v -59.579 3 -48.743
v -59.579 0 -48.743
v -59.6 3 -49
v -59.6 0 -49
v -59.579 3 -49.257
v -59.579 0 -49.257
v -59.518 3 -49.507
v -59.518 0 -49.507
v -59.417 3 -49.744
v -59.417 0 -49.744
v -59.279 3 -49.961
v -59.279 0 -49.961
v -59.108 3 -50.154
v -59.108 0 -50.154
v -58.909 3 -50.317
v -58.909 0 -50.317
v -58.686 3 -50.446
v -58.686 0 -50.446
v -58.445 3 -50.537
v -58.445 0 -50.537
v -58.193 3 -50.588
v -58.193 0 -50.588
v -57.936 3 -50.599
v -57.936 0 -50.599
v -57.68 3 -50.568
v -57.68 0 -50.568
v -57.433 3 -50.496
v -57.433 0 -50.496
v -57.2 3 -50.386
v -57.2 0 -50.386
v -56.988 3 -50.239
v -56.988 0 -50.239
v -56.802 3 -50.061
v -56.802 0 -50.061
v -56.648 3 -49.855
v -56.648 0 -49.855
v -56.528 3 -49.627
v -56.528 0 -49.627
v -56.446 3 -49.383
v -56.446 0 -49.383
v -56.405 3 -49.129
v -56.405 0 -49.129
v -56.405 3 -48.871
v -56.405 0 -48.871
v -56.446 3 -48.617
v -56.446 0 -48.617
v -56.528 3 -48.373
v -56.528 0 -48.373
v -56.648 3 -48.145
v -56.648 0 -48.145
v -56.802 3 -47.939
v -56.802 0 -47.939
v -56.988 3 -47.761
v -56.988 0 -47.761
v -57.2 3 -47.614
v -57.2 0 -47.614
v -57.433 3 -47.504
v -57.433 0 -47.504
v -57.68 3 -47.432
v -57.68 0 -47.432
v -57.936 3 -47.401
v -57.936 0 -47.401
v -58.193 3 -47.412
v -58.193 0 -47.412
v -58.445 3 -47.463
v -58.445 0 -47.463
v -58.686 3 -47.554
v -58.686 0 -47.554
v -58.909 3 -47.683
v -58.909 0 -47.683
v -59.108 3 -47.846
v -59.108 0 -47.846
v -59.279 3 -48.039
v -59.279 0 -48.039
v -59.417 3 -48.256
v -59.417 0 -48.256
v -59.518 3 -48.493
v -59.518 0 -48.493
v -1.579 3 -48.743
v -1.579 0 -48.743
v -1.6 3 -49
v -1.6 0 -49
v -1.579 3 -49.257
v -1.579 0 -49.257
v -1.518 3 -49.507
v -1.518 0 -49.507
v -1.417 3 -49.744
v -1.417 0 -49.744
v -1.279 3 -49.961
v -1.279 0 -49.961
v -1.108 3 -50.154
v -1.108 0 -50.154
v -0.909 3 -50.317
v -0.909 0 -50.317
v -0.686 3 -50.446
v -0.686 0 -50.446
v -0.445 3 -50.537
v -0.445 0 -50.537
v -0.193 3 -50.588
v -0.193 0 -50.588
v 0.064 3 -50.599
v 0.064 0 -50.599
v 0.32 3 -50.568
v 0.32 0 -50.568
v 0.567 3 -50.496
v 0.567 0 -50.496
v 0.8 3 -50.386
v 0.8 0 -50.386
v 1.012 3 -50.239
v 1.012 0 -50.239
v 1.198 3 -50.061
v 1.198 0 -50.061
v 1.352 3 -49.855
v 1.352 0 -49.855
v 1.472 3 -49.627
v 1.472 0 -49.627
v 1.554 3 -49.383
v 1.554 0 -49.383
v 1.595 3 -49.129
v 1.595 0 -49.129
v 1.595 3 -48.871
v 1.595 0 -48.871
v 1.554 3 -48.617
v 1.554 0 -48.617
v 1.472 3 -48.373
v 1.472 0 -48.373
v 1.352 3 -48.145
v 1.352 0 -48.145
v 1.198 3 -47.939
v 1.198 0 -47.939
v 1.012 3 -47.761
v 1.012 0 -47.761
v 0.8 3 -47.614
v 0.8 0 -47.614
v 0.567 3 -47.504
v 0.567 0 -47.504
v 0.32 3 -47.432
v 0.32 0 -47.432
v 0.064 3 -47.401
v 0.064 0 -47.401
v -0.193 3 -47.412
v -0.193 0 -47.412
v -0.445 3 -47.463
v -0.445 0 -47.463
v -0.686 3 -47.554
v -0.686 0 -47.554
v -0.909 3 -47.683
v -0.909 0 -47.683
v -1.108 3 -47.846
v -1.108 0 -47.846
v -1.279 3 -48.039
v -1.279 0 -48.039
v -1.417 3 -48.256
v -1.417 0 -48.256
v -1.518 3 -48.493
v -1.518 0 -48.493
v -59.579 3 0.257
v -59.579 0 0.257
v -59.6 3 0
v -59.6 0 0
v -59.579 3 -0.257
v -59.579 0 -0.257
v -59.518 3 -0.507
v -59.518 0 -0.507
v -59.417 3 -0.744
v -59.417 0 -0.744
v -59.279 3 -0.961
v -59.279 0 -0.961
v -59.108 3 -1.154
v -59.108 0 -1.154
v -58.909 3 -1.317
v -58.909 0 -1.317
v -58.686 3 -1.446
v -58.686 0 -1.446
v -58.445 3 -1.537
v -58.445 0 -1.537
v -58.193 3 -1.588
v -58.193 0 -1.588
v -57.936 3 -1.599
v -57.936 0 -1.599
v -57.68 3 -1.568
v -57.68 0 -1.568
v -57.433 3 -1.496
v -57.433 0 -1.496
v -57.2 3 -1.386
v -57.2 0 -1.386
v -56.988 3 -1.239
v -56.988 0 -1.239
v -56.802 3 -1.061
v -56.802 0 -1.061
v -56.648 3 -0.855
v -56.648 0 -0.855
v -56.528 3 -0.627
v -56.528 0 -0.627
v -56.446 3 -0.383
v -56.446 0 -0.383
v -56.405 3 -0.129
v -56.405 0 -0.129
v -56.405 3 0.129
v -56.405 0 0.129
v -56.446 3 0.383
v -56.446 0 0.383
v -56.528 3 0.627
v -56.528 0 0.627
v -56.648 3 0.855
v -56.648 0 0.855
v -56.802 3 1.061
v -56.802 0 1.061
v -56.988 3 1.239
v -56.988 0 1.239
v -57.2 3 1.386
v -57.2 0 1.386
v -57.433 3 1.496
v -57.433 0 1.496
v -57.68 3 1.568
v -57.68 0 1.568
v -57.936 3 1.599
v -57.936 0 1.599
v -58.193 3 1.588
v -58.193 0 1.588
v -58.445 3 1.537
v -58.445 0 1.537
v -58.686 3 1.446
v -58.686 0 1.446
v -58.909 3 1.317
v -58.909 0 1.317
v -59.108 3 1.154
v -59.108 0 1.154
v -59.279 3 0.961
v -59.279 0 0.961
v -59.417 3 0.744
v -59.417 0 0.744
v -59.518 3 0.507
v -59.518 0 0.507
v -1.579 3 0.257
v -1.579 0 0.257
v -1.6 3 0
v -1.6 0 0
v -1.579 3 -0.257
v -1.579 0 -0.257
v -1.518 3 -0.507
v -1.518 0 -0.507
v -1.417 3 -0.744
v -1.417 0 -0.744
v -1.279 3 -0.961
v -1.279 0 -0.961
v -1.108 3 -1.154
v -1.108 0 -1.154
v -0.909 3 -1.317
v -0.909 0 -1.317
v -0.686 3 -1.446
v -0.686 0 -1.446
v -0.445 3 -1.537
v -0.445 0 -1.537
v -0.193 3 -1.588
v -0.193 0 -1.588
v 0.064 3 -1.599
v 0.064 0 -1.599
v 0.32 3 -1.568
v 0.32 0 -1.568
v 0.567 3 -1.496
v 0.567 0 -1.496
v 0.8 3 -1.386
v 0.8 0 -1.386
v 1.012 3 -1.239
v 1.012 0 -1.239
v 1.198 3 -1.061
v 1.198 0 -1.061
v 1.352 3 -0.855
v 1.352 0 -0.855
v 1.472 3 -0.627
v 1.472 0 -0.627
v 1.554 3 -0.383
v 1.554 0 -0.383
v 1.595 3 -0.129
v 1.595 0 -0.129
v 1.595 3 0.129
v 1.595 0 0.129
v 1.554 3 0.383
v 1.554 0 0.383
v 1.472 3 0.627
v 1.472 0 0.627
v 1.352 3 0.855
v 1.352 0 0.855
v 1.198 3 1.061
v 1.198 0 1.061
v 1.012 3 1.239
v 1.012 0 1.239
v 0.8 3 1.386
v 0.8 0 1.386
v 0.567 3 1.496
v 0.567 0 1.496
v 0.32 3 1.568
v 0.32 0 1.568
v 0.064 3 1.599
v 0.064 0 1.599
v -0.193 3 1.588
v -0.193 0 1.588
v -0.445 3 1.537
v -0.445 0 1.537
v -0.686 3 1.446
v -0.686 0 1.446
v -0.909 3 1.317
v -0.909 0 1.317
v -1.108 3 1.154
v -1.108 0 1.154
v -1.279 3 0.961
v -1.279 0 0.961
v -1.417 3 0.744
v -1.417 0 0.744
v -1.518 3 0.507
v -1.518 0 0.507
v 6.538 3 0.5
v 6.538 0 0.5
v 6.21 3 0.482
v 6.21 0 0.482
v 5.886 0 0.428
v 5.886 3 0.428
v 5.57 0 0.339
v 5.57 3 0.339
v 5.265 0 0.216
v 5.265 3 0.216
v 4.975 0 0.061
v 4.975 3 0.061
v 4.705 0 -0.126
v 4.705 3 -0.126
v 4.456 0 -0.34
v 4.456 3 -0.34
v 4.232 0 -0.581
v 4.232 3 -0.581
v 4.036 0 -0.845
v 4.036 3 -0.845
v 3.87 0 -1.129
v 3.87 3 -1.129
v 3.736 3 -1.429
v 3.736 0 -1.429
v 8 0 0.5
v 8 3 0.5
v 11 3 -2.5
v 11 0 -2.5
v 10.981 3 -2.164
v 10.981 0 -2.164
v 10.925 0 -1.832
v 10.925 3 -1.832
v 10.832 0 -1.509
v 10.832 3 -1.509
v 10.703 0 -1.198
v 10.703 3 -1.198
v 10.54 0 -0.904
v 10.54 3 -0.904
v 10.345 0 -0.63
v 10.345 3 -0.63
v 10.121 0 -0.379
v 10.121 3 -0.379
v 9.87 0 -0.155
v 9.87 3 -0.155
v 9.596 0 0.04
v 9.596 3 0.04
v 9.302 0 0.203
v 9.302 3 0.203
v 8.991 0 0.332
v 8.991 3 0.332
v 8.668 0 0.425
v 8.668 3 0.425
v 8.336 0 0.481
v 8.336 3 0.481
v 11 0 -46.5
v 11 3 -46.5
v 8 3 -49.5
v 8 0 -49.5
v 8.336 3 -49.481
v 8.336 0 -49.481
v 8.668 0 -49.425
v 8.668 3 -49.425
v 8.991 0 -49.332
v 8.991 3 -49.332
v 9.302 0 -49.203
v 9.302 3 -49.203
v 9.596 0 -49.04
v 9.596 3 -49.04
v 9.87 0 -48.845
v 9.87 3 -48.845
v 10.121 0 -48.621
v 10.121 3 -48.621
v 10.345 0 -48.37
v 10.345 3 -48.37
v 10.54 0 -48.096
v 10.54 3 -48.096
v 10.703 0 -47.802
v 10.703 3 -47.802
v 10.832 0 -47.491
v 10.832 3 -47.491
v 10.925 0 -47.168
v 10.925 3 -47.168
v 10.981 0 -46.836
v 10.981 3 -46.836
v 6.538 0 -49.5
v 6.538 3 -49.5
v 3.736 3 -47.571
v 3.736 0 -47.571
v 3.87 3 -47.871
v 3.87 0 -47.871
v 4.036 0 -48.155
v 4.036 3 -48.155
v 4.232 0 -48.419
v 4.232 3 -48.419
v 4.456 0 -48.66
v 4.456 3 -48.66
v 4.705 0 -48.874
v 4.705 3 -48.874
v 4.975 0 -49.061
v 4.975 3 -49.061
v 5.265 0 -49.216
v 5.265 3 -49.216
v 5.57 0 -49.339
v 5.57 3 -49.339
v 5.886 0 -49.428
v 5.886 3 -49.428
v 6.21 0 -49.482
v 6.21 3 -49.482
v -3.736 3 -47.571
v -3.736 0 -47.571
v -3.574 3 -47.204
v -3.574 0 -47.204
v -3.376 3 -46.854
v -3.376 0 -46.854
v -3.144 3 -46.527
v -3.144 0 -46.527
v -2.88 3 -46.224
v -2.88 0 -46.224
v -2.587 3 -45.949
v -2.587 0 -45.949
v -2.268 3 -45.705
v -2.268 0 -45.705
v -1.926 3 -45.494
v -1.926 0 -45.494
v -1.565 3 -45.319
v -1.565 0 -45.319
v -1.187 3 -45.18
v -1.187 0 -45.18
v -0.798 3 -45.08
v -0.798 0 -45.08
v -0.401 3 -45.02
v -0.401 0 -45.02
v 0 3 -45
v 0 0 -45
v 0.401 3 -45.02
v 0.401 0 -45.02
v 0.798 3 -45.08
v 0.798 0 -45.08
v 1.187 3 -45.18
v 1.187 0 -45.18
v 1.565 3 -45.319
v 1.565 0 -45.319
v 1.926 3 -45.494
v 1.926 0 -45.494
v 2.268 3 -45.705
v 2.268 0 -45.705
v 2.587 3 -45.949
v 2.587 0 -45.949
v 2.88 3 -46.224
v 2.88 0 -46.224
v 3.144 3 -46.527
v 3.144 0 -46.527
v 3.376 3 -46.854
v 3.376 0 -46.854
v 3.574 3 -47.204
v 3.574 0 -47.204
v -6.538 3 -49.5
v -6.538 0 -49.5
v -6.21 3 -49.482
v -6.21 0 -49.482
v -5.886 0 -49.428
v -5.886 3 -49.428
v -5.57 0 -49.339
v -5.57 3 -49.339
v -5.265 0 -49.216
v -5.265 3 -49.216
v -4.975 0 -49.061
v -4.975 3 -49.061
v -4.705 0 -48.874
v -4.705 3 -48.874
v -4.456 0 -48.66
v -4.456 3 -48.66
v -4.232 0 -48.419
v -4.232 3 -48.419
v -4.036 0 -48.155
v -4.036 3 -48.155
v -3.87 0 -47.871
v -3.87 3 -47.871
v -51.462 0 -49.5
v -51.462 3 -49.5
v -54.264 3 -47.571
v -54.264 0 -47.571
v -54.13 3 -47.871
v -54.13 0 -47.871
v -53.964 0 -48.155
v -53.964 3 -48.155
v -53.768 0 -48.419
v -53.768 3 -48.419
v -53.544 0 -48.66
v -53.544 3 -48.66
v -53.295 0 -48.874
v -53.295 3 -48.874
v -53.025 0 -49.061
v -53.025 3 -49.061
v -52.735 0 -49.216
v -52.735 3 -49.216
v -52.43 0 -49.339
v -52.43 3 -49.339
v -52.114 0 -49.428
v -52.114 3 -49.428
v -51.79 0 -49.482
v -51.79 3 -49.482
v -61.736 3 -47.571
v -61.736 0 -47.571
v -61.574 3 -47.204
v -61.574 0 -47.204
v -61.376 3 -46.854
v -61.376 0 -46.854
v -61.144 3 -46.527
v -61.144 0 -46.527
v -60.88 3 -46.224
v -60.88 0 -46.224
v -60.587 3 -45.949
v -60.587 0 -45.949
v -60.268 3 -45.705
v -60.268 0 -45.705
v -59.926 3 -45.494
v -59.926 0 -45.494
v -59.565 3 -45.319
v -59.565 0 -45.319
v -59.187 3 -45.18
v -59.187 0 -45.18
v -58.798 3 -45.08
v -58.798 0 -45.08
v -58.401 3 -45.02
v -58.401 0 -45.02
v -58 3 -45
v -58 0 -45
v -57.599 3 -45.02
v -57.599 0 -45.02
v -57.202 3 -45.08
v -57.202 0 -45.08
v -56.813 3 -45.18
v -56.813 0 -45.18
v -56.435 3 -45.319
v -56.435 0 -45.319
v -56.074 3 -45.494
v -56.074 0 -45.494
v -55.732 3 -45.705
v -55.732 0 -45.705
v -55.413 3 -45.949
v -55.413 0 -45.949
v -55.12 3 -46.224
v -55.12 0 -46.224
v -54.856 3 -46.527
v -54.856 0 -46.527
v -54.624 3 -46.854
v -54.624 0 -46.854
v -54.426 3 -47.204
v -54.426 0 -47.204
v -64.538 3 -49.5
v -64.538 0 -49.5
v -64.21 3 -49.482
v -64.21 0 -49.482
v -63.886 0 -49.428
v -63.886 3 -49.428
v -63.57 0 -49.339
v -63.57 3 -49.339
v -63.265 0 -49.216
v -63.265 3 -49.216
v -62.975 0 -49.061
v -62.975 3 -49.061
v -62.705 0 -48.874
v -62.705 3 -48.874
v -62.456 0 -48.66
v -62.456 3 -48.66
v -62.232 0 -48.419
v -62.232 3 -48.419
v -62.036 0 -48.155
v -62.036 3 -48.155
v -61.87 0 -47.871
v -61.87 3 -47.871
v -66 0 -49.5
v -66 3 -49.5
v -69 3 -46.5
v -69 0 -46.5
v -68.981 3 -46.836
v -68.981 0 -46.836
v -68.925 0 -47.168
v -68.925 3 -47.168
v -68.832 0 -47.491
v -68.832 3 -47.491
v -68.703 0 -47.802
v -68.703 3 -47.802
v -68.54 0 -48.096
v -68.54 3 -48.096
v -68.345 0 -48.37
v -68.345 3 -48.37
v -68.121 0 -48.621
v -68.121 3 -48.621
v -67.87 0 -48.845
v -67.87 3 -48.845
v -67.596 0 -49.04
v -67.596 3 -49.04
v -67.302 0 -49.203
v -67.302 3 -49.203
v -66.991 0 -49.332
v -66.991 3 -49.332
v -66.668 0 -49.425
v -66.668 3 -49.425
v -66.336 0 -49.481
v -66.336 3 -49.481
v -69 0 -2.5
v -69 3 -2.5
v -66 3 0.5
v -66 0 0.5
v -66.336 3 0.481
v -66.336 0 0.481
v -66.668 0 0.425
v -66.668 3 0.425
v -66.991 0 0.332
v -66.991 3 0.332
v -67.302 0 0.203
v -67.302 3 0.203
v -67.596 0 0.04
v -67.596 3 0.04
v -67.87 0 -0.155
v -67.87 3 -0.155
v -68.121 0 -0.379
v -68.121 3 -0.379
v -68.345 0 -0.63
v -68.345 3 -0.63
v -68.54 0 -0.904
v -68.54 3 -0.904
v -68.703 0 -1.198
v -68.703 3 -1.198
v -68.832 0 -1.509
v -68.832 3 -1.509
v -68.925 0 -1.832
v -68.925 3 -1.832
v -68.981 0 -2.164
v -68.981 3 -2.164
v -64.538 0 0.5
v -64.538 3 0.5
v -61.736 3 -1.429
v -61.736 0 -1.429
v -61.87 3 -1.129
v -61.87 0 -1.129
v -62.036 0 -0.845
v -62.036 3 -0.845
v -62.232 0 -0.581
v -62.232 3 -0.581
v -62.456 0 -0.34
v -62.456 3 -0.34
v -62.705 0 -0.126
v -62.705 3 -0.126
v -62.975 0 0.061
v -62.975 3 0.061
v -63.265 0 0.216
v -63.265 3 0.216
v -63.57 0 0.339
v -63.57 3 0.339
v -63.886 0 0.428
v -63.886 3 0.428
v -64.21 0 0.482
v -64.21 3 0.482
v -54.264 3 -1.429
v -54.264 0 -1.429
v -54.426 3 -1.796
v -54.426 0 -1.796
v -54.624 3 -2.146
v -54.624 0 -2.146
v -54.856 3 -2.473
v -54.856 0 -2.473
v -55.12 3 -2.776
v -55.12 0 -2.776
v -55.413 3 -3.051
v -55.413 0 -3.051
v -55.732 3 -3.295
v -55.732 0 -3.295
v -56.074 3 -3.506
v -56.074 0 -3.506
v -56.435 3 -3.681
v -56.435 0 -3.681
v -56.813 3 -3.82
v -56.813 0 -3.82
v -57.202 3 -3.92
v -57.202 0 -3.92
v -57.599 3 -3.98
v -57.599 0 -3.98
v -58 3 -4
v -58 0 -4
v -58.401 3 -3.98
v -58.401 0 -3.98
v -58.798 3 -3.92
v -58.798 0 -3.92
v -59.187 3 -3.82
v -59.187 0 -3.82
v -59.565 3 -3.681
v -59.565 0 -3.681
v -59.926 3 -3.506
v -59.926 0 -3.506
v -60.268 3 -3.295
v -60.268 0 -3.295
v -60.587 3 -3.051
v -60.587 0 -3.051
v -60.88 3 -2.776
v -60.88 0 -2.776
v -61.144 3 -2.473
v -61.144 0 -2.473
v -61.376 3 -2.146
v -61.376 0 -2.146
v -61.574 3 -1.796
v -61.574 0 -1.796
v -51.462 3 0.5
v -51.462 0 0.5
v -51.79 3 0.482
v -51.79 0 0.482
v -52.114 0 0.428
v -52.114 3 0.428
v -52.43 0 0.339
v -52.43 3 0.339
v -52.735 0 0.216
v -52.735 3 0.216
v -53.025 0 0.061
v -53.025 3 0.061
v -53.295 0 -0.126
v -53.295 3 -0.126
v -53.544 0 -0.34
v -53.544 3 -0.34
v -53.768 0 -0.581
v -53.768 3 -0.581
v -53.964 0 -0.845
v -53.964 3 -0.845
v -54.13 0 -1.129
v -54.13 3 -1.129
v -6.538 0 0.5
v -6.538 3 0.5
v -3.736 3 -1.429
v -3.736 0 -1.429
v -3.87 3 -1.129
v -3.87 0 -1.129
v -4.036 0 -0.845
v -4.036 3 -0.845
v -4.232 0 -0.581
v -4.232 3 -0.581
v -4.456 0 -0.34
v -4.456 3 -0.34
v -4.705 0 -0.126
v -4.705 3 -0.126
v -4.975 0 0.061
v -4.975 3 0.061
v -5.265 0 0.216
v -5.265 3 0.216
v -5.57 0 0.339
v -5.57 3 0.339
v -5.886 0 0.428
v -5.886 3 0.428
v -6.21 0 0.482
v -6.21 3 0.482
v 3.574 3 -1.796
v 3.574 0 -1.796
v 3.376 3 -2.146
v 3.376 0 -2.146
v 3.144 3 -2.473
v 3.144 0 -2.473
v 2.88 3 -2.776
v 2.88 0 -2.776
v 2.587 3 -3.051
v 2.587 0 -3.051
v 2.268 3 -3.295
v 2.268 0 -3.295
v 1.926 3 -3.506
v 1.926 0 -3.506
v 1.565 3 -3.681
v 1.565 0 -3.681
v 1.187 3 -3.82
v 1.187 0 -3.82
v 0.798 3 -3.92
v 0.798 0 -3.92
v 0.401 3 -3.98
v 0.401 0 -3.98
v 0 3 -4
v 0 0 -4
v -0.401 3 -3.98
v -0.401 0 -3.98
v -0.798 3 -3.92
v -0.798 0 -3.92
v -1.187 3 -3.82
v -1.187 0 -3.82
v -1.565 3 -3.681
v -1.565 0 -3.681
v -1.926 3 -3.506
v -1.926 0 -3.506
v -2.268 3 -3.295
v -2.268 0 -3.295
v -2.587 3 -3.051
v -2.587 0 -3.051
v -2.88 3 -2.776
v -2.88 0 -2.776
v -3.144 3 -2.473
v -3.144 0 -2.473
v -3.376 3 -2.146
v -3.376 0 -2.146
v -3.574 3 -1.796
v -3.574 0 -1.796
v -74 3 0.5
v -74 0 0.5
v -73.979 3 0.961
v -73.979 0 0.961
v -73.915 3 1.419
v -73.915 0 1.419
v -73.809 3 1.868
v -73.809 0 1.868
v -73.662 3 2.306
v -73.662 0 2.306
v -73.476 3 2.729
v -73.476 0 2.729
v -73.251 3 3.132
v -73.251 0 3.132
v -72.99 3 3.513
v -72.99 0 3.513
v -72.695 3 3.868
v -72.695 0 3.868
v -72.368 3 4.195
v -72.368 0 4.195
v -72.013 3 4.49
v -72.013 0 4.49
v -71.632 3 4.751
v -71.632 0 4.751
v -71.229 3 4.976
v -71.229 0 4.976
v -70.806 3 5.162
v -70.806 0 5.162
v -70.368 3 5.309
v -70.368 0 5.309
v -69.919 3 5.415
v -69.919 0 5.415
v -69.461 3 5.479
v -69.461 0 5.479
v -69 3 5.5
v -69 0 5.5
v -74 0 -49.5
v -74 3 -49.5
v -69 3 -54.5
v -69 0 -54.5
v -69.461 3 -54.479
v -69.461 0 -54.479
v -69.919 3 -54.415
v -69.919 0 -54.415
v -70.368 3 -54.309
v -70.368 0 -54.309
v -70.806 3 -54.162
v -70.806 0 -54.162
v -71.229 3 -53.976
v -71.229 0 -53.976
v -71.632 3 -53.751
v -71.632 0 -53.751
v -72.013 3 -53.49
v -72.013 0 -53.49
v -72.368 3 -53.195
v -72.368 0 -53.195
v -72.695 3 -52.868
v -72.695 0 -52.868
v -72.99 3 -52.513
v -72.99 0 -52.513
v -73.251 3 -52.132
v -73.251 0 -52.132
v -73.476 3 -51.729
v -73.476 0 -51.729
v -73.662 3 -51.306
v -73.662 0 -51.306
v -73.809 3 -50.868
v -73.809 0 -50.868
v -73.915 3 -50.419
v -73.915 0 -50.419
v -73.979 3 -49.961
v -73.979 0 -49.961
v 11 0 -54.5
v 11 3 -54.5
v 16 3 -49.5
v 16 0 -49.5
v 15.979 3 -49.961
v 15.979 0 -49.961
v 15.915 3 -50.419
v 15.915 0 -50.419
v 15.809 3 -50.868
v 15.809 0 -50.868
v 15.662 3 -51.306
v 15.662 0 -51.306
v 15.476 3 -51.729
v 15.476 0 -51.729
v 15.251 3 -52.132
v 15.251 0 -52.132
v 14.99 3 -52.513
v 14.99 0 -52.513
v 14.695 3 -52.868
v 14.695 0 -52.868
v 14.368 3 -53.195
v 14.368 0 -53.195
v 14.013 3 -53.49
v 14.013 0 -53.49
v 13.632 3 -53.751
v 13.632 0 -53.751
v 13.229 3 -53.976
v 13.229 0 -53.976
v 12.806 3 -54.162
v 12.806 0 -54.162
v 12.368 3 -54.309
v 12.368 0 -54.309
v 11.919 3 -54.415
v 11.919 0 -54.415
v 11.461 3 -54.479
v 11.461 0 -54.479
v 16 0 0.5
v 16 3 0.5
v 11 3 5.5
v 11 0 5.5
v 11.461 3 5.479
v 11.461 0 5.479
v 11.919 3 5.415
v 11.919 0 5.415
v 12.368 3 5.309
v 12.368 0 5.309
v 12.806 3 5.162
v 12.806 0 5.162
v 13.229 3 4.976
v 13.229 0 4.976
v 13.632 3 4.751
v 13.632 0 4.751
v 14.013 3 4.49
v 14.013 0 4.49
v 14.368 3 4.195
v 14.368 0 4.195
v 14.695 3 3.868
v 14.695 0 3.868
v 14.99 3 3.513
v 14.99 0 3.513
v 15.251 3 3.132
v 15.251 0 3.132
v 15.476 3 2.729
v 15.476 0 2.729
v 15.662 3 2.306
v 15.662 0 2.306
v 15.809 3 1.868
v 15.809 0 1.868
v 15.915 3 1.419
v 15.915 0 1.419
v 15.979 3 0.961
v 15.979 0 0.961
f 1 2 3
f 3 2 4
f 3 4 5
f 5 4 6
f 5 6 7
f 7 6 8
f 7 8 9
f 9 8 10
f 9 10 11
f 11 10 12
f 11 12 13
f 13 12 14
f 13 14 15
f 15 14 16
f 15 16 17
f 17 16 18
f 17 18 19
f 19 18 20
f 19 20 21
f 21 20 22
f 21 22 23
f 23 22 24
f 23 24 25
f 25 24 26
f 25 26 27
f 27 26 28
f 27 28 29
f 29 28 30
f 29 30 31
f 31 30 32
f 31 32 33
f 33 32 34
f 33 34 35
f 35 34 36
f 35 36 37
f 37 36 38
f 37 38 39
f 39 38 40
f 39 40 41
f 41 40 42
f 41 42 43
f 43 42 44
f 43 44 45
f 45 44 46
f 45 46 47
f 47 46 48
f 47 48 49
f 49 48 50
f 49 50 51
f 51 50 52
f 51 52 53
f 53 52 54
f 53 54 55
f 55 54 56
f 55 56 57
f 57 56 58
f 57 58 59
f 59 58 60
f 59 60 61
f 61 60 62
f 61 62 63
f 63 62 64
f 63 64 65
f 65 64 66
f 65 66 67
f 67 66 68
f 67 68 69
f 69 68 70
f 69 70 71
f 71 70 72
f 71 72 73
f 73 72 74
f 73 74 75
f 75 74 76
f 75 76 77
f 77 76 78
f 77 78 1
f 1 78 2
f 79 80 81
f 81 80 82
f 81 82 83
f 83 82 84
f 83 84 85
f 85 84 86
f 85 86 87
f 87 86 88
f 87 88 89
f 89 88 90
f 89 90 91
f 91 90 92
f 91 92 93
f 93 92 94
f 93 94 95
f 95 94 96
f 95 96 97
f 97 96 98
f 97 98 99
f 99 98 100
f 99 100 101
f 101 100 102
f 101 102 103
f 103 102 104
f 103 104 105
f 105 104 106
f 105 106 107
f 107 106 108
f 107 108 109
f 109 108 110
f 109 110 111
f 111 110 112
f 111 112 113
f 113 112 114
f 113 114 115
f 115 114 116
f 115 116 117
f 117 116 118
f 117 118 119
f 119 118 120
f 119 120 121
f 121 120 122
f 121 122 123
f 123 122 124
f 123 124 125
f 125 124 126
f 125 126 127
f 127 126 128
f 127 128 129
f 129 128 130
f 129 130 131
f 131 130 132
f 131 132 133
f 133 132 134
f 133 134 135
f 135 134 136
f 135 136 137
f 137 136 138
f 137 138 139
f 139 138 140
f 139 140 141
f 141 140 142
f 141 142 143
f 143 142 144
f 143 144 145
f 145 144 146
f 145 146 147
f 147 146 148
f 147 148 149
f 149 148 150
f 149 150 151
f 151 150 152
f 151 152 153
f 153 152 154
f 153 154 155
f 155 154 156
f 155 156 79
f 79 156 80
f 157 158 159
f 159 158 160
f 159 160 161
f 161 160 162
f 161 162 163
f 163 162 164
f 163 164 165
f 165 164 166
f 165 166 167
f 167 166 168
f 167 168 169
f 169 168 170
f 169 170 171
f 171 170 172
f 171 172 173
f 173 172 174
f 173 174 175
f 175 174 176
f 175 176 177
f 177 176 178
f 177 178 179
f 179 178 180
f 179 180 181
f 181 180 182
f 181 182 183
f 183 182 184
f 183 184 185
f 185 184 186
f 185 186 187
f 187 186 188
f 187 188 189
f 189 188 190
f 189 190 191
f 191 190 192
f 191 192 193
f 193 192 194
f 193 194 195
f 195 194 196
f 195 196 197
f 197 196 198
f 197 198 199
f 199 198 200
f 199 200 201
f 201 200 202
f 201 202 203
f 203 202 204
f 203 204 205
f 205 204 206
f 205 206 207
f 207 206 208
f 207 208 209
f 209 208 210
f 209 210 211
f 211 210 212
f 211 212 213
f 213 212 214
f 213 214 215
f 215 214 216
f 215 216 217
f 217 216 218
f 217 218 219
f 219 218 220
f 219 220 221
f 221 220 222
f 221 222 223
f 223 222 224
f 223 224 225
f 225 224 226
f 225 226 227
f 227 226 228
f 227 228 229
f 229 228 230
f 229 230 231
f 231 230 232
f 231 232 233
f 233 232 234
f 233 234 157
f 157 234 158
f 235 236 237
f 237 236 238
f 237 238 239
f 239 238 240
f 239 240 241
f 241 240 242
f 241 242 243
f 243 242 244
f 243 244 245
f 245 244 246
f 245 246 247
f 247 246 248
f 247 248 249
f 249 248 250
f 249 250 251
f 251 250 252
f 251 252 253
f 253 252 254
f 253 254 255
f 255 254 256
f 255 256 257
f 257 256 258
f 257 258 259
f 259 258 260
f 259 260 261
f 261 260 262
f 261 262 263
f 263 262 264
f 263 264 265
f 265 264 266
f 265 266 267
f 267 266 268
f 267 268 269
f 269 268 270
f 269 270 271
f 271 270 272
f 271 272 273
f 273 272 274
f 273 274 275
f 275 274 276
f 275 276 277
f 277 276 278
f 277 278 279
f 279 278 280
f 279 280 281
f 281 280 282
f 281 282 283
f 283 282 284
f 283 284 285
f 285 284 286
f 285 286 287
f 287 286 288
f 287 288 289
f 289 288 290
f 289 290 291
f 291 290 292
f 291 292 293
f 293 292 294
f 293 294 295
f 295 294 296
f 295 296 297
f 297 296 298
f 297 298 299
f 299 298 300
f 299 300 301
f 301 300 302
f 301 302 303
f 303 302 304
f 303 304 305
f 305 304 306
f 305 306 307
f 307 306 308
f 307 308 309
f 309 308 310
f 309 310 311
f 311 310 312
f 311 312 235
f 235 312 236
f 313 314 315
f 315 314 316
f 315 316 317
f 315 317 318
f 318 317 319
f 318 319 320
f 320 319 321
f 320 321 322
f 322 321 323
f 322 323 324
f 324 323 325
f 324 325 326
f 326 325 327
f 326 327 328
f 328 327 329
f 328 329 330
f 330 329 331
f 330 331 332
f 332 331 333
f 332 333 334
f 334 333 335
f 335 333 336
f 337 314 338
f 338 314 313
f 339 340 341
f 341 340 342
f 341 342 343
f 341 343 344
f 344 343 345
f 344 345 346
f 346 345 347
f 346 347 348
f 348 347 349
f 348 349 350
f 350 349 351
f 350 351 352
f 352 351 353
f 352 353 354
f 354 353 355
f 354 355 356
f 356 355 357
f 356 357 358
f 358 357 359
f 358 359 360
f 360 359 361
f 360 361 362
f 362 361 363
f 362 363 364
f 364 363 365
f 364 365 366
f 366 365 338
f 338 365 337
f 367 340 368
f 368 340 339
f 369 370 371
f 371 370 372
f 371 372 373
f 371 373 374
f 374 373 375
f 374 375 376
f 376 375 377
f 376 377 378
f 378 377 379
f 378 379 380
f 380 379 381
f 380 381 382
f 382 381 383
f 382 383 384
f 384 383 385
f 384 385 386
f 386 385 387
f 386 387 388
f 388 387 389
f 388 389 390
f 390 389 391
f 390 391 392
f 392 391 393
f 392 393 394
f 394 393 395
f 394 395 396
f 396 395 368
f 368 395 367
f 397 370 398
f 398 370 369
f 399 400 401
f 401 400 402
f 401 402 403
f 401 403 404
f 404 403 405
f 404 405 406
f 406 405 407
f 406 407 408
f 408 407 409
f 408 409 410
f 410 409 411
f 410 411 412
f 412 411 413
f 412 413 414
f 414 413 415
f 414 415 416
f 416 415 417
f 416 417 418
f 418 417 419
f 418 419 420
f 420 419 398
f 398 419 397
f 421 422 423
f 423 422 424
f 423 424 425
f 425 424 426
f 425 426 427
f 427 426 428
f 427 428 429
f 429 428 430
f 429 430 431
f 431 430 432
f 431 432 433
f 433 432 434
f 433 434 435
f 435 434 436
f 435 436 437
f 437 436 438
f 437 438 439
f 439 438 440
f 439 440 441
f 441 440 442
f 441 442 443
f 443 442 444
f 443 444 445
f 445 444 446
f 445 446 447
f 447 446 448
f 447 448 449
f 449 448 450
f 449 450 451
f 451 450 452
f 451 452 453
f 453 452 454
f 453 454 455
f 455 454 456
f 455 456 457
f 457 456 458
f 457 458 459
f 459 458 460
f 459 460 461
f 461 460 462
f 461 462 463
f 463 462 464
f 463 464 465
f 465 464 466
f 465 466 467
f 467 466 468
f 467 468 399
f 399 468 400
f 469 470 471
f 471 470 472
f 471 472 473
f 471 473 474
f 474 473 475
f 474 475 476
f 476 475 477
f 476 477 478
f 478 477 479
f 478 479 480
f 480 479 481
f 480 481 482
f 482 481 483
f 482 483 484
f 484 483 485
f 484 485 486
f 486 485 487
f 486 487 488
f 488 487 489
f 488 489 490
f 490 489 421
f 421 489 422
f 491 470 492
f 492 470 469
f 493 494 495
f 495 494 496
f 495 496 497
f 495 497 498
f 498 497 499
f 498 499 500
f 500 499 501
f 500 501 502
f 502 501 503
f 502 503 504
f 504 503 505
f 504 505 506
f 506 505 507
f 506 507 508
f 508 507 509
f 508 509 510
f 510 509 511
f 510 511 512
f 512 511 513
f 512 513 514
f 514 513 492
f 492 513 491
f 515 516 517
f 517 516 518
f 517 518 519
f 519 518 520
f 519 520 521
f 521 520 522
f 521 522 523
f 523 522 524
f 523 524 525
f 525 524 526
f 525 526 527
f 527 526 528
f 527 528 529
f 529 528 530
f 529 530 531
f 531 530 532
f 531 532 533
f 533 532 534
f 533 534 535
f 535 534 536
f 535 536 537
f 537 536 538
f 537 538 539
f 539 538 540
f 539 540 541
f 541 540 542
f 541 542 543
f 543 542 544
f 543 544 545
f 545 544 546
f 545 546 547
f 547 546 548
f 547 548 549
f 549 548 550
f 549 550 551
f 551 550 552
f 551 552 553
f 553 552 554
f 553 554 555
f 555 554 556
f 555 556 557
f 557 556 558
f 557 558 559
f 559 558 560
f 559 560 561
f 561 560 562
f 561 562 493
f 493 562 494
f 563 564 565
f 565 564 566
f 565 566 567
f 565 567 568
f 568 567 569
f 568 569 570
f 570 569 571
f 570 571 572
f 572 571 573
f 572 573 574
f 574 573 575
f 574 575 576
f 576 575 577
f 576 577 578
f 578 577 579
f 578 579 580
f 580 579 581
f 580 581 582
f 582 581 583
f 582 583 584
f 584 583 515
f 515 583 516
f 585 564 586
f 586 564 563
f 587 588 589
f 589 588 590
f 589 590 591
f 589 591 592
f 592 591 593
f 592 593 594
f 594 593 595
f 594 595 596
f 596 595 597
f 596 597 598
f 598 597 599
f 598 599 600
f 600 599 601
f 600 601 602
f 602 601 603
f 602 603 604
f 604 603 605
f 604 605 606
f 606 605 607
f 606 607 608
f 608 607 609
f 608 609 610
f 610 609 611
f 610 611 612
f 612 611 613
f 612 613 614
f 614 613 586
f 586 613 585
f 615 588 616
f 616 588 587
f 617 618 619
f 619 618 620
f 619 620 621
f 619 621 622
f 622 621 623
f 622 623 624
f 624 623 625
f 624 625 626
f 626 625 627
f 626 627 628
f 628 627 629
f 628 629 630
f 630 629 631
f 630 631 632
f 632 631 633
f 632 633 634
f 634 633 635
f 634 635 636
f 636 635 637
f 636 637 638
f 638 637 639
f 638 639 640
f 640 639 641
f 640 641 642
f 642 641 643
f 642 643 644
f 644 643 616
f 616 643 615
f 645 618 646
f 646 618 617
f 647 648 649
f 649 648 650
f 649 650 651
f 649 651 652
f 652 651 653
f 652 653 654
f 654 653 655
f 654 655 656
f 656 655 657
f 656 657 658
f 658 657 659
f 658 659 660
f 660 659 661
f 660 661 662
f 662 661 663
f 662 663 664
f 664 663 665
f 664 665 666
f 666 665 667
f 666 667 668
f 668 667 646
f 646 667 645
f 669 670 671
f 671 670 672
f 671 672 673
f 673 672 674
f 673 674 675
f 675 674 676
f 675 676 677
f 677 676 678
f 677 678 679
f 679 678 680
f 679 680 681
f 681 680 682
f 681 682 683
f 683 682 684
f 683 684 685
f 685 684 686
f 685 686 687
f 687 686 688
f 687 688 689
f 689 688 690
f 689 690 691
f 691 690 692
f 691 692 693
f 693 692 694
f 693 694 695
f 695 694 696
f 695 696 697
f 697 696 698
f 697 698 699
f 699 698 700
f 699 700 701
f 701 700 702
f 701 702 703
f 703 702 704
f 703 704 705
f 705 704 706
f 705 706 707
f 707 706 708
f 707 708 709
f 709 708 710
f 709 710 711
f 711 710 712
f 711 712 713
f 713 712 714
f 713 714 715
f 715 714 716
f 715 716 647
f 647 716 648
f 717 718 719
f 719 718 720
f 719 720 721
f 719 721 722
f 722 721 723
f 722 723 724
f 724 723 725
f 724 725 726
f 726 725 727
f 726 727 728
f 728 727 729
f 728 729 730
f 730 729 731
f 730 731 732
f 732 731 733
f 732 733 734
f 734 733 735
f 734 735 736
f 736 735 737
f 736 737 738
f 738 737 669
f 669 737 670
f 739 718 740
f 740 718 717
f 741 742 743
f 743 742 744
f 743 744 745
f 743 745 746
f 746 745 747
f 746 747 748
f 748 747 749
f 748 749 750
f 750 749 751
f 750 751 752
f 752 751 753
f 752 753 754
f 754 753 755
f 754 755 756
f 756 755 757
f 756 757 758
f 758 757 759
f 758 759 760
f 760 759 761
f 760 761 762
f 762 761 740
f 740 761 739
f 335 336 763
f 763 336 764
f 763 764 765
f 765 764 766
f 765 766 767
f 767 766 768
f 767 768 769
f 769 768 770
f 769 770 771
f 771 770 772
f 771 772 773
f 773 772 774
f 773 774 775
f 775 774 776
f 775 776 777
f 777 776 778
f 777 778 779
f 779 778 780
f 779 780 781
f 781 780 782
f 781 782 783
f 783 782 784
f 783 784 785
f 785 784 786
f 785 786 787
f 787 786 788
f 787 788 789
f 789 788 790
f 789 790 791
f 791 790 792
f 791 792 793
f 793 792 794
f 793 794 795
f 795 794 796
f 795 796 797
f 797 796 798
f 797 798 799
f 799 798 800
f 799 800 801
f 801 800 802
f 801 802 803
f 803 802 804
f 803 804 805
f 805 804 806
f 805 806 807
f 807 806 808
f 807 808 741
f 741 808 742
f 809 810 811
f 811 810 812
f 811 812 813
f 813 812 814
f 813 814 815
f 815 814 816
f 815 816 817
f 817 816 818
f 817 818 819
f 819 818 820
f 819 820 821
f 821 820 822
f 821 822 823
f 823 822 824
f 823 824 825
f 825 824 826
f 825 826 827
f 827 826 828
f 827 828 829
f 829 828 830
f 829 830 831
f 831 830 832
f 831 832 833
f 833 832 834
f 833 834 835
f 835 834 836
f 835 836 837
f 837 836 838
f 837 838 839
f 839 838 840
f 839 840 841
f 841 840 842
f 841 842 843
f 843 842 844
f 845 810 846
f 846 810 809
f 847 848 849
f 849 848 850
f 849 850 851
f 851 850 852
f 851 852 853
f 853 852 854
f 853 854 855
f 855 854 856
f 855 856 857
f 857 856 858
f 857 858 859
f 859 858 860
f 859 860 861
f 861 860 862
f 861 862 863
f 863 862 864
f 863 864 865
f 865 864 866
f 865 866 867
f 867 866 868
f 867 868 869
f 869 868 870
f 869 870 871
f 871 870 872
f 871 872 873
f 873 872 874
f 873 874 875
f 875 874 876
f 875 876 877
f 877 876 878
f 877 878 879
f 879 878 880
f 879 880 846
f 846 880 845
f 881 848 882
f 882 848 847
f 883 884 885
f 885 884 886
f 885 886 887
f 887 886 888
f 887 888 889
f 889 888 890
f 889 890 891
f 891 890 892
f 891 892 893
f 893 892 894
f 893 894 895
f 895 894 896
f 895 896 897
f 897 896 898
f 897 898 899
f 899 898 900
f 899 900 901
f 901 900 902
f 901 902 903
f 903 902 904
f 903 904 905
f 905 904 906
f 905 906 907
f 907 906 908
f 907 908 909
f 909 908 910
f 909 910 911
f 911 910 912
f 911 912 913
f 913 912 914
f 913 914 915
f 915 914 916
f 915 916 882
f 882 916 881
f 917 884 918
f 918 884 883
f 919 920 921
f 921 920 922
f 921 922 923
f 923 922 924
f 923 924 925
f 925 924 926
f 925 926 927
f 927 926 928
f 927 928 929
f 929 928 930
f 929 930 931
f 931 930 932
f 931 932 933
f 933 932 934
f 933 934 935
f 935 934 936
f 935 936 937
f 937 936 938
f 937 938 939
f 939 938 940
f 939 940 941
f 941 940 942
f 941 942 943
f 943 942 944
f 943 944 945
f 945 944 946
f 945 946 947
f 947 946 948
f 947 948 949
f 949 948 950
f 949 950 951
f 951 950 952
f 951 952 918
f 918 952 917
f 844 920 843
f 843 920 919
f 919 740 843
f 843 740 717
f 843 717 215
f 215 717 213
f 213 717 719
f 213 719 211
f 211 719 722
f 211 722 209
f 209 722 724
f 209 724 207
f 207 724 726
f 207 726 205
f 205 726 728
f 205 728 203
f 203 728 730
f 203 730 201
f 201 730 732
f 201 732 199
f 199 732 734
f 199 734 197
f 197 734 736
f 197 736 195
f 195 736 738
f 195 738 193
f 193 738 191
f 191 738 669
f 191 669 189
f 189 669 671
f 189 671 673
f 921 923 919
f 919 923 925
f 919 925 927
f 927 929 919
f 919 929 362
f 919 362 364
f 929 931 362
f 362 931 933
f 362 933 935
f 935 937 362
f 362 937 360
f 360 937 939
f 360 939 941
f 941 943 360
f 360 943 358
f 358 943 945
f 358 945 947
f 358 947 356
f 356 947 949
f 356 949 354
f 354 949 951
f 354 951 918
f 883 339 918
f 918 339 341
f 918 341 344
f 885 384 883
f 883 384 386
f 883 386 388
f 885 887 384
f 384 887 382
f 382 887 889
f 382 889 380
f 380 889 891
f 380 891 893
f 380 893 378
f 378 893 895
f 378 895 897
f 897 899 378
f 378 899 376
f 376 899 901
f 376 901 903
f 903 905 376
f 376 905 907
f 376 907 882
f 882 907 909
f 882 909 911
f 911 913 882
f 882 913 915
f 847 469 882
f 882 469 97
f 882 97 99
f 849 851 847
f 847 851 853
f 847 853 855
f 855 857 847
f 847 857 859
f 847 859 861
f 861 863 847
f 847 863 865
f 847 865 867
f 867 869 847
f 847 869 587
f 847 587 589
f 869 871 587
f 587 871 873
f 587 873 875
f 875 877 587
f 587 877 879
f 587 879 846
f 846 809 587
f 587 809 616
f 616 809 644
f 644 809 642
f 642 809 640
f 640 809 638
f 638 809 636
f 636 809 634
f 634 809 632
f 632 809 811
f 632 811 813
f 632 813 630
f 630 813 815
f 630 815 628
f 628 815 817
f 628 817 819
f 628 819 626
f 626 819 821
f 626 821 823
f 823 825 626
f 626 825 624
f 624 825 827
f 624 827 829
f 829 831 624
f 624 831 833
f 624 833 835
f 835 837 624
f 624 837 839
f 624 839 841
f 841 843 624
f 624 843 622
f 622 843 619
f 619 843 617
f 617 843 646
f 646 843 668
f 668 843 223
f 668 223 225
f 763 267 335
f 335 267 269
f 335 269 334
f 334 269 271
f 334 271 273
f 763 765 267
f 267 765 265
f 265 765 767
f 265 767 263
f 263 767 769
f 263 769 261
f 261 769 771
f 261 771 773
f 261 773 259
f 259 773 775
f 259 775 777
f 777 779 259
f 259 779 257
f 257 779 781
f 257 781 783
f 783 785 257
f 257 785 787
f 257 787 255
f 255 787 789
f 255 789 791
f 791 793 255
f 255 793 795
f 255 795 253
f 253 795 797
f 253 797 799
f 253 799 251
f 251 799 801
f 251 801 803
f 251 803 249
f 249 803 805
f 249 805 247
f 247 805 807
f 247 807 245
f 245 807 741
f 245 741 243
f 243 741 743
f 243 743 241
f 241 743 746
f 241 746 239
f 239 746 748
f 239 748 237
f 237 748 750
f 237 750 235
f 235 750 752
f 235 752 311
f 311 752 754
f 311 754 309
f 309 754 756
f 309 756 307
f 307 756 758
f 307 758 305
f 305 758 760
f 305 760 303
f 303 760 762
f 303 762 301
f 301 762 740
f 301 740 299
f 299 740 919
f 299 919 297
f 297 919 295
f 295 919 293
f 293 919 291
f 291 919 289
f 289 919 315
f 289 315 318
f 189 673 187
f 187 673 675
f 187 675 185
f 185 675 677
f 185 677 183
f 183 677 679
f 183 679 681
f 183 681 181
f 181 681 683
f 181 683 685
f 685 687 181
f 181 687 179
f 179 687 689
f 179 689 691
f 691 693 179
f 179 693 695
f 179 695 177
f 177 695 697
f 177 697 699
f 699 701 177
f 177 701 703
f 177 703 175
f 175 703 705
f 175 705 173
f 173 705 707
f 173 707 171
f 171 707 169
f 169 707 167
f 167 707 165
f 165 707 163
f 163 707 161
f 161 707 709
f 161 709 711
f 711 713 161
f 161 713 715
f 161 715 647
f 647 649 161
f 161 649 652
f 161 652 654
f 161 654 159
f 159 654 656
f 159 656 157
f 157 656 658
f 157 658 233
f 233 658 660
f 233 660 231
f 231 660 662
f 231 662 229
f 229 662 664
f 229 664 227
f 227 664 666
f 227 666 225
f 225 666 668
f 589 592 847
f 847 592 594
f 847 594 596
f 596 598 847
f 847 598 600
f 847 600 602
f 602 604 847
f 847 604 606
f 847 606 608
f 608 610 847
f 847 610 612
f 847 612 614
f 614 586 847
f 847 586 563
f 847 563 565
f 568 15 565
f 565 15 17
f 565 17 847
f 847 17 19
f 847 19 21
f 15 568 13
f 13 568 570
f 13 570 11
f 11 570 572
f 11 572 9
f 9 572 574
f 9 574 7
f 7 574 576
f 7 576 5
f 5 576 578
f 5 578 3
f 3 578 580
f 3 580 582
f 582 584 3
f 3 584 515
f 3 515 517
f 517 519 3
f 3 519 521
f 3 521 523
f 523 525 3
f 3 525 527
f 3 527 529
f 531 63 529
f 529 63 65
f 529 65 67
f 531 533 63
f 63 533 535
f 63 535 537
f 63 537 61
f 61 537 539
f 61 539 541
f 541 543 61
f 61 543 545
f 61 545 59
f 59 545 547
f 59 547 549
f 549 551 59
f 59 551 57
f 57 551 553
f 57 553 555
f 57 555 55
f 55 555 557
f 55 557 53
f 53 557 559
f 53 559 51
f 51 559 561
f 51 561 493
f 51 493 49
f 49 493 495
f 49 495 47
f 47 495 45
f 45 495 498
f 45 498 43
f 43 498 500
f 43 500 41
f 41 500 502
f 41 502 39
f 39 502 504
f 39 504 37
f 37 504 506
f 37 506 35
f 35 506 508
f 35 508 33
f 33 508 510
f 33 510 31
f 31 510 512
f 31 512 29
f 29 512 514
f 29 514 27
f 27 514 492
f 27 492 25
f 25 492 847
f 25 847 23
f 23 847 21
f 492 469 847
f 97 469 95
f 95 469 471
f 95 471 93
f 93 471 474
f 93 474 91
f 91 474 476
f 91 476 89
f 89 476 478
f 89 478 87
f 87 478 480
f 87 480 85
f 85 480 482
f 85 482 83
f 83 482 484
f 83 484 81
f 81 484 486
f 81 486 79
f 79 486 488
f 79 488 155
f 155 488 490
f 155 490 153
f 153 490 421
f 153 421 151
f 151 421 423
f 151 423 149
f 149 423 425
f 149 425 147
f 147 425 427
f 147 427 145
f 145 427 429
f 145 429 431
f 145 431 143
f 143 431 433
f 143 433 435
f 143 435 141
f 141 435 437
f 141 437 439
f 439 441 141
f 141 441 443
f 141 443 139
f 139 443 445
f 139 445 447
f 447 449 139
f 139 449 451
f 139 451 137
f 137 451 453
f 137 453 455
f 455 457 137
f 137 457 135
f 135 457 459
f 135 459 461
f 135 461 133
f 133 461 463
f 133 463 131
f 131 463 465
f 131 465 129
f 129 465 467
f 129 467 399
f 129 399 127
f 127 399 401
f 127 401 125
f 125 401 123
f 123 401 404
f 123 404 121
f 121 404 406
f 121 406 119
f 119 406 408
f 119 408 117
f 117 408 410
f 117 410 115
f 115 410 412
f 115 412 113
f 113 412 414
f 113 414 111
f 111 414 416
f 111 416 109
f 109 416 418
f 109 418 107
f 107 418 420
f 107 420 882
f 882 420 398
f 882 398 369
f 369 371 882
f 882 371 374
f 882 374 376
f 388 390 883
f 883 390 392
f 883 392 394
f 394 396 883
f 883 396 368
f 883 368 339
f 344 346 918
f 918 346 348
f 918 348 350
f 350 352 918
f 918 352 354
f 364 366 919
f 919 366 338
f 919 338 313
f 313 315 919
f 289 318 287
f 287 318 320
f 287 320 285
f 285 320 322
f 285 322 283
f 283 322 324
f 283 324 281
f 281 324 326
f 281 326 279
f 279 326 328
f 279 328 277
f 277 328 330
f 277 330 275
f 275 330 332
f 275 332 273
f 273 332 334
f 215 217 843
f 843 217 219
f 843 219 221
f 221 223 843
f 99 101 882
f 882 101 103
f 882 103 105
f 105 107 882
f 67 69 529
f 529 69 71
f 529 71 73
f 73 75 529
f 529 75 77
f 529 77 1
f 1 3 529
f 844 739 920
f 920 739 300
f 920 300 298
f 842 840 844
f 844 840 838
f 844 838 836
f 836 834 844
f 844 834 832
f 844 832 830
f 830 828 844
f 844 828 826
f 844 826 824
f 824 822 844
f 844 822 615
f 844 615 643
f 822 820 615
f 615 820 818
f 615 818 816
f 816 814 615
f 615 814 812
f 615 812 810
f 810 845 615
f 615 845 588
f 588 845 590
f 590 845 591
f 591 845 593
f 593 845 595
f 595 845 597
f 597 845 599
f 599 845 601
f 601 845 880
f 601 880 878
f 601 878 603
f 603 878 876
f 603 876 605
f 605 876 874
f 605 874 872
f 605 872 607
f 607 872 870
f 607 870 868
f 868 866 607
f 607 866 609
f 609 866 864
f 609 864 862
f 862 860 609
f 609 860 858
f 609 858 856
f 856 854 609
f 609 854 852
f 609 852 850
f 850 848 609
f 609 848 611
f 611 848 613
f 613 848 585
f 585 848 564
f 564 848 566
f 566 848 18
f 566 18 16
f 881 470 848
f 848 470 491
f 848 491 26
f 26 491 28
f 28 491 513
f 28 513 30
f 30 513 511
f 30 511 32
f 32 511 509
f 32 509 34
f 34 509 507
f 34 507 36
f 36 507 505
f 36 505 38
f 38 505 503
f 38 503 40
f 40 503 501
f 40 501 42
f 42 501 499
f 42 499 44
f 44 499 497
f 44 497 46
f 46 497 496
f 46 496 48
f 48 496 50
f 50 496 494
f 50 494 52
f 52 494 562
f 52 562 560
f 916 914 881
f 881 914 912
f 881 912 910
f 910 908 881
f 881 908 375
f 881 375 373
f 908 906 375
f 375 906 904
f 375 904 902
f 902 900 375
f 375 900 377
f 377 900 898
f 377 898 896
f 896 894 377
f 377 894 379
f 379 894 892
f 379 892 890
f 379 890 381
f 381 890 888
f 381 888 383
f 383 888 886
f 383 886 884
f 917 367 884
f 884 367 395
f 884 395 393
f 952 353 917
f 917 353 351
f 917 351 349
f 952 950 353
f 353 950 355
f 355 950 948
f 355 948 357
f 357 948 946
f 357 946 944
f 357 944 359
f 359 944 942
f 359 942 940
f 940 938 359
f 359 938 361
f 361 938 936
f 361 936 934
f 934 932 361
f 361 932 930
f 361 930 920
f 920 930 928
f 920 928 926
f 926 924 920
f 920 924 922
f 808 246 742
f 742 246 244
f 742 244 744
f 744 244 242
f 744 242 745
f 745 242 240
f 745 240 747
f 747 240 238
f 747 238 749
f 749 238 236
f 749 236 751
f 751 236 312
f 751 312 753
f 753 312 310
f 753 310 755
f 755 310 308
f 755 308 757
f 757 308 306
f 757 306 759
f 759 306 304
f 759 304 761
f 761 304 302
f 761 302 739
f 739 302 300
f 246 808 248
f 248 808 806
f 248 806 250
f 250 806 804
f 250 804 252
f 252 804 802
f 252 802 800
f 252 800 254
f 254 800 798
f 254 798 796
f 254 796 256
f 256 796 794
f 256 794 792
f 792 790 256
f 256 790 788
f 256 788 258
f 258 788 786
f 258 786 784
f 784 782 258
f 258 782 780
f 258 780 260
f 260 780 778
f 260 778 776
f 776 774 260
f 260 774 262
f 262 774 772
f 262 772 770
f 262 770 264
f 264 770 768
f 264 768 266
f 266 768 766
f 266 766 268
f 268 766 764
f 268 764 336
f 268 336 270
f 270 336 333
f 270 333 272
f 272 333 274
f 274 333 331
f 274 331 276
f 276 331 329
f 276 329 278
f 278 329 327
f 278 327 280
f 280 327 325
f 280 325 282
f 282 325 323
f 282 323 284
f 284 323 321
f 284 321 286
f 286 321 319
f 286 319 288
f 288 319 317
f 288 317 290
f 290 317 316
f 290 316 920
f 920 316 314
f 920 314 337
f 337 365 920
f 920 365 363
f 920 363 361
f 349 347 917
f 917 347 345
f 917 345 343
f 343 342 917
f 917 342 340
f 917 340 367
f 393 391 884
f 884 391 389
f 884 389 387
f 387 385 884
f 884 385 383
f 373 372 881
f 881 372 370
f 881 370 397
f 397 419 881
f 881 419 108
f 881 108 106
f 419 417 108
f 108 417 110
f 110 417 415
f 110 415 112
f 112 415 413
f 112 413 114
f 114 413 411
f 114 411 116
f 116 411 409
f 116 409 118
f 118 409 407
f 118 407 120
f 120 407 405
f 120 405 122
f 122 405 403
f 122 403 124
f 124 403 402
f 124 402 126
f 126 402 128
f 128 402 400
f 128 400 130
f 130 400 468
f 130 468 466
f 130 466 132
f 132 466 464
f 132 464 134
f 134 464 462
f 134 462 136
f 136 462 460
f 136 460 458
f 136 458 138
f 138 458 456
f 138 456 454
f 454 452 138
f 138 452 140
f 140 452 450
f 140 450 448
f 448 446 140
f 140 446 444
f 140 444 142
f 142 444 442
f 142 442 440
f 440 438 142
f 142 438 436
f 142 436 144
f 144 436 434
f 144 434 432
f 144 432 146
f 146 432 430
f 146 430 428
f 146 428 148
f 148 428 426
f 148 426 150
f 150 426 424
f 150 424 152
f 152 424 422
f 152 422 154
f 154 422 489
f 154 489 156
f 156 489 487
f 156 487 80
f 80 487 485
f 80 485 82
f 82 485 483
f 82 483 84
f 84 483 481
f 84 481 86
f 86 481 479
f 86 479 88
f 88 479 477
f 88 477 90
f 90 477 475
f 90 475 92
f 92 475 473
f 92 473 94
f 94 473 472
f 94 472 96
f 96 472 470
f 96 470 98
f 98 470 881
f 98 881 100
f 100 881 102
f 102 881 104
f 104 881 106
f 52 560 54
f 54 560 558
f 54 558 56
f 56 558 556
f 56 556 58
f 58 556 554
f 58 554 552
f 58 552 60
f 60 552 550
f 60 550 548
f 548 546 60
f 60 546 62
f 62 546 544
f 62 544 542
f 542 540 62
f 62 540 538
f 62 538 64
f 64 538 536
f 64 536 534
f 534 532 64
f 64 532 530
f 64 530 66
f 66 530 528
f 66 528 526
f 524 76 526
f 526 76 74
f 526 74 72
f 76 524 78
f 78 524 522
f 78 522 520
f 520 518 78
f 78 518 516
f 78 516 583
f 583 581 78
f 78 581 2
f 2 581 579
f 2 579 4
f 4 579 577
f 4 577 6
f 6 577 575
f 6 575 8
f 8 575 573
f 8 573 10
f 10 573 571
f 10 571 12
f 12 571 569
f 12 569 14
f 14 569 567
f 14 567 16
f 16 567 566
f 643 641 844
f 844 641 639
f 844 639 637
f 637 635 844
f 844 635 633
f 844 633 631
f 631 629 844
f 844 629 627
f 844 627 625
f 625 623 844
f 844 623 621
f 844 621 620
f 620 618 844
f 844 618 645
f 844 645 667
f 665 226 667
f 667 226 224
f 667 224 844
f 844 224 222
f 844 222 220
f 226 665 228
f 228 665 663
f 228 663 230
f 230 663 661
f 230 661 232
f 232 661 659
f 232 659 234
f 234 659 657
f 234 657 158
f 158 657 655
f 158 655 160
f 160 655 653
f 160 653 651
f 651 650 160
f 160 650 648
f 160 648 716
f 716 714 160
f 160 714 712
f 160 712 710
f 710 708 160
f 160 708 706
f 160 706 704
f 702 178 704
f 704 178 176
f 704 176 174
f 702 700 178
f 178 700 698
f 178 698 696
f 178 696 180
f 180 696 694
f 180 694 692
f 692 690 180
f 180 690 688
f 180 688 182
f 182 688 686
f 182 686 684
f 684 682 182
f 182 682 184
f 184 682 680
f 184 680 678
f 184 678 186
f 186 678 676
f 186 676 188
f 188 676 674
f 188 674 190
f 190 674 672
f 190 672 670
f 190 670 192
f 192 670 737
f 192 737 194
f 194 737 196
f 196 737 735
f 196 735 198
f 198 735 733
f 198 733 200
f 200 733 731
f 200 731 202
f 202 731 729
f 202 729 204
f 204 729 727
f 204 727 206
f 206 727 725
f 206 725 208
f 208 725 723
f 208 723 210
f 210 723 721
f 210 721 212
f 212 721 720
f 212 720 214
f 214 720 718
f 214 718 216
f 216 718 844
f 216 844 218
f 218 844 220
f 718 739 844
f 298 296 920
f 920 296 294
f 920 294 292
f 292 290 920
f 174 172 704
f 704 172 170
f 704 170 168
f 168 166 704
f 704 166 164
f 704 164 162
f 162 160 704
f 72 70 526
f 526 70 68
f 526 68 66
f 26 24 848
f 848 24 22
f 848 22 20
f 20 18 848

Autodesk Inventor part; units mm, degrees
ref_plane "YZ Plane" through (0, 0, 0) normal (1, 0, 0) x (0, 1, 0)
ref_plane "XZ Plane" through (0, 0, 0) normal (0, 1, 0) x (-1, 0, 0)
ref_plane "XY Plane" through (0, 0, 0) normal (0, 0, 1) x (1, 0, 0)
sketch "Sketch1" plane through (0, 0, 0) normal (0, 1, 0) x (-1, 0, 0)
  line L0 (0, 0) -> (58, 0) construction
  line L1 (58, 0) -> (58, -49) construction
  line L2 (58, -49) -> (0, -49) construction
  line L3 (0, -49) -> (0, 0) construction
  circle A0 centre (58, -49) radius 1.6
  circle A1 centre (0, -49) radius 1.6
  circle A2 centre (58, 0) radius 1.6
  circle A3 centre (0, 0) radius 1.6
  line L4 (74, -24.5) -> (-16, -24.5) construction
  line L5 (29, -54.5) -> (29, 5.5) construction
  line L6 (69, -54.5) -> (-11, -54.5)
  line L7 (-16, -49.5) -> (-16, 0.5)
  line L8 (-11, 5.5) -> (69, 5.5)
  line L9 (74, 0.5) -> (74, -49.5)
  arc A4 (69, -54.5) -> (74, -49.5) centre (69, -49.5) ccw
  arc A5 (-16, -49.5) -> (-11, -54.5) centre (-11, -49.5) ccw
  arc A6 (-11, 5.5) -> (-16, 0.5) centre (-11, 0.5) ccw
  arc A7 (74, 0.5) -> (69, 5.5) centre (69, 0.5) ccw
  line L10 (-8, -49.5) -> (-6.5383, -49.5)
  line L11 (69, -46.5) -> (69, -2.5)
  line L12 (66, 0.5) -> (64.5383, 0.5)
  line L13 (-11, -2.5) -> (-11, -46.5)
  arc A8 (61.7362, -47.5714) -> (54.2638, -47.5714) centre (58, -49) ccw
  arc A9 (3.7362, -47.5714) -> (-3.7362, -47.5714) centre (0, -49) ccw
  arc A10 (-3.7362, -1.4286) -> (3.7362, -1.4286) centre (0, 0) ccw
  arc A11 (54.2638, -1.4286) -> (61.7362, -1.4286) centre (58, 0) ccw
  arc A12 (54.0314, -49.5) -> (61.9686, -49.5) centre (58, -49) ccw construction
  arc A13 (-3.9686, -49.5) -> (3.9686, -49.5) centre (0, -49) ccw construction
  arc A14 (3.9686, 0.5) -> (-3.9686, 0.5) centre (0, 0) ccw construction
  arc A15 (61.9686, 0.5) -> (54.0314, 0.5) centre (58, 0) ccw construction
  line L14 (64.5383, -49.5) -> (66, -49.5)
  line L15 (51.4617, 0.5) -> (6.5383, 0.5)
  line L16 (-6.5383, 0.5) -> (-8, 0.5)
  line L17 (6.5383, -49.5) -> (51.4617, -49.5)
  arc A16 (61.7362, -47.5714) -> (64.5383, -49.5) centre (64.5383, -46.5) ccw
  arc A17 (51.4617, -49.5) -> (54.2638, -47.5714) centre (51.4617, -46.5) ccw
  arc A18 (64.5383, 0.5) -> (61.7362, -1.4286) centre (64.5383, -2.5) ccw
  arc A19 (54.2638, -1.4286) -> (51.4617, 0.5) centre (51.4617, -2.5) ccw
  arc A20 (6.5383, 0.5) -> (3.7362, -1.4286) centre (6.5383, -2.5) ccw
  arc A21 (-3.7362, -1.4286) -> (-6.5383, 0.5) centre (-6.5383, -2.5) ccw
  arc A22 (-6.5383, -49.5) -> (-3.7362, -47.5714) centre (-6.5383, -46.5) ccw
  arc A23 (3.7362, -47.5714) -> (6.5383, -49.5) centre (6.5383, -46.5) ccw
  arc A24 (66, -49.5) -> (69, -46.5) centre (66, -46.5) ccw
  arc A25 (69, -2.5) -> (66, 0.5) centre (66, -2.5) ccw
  arc A26 (-8, 0.5) -> (-11, -2.5) centre (-8, -2.5) ccw
  arc A27 (-11, -46.5) -> (-8, -49.5) centre (-8, -46.5) ccw
  point P0 (29, -49)
  point P1 (0, -24.5)
  point P2 (58, -24.5)
  point P3 (29, 0)
  point P4 (29, -24.5)
  dimension "d0" = 3.2
  dimension "d1" = 58
  dimension "d2" = 49
  dimension "d3" = 5
  dimension "d4" = 90
  dimension "d5" = 60
  dimension "d6" = 5
  dimension "d7" = 8
  dimension "d8" = 5
  dimension "d9" = 5
  dimension "d10" = 5
  dimension "d11" = 3
extrude "Extrusion1" add sketch "Sketch1" along normal blind 3
equation "\"d8\" = d6"
equation "\"d9\" = d6"
equation "\"d10\" = d6"
properties part number "RemoteDisplayMount"
